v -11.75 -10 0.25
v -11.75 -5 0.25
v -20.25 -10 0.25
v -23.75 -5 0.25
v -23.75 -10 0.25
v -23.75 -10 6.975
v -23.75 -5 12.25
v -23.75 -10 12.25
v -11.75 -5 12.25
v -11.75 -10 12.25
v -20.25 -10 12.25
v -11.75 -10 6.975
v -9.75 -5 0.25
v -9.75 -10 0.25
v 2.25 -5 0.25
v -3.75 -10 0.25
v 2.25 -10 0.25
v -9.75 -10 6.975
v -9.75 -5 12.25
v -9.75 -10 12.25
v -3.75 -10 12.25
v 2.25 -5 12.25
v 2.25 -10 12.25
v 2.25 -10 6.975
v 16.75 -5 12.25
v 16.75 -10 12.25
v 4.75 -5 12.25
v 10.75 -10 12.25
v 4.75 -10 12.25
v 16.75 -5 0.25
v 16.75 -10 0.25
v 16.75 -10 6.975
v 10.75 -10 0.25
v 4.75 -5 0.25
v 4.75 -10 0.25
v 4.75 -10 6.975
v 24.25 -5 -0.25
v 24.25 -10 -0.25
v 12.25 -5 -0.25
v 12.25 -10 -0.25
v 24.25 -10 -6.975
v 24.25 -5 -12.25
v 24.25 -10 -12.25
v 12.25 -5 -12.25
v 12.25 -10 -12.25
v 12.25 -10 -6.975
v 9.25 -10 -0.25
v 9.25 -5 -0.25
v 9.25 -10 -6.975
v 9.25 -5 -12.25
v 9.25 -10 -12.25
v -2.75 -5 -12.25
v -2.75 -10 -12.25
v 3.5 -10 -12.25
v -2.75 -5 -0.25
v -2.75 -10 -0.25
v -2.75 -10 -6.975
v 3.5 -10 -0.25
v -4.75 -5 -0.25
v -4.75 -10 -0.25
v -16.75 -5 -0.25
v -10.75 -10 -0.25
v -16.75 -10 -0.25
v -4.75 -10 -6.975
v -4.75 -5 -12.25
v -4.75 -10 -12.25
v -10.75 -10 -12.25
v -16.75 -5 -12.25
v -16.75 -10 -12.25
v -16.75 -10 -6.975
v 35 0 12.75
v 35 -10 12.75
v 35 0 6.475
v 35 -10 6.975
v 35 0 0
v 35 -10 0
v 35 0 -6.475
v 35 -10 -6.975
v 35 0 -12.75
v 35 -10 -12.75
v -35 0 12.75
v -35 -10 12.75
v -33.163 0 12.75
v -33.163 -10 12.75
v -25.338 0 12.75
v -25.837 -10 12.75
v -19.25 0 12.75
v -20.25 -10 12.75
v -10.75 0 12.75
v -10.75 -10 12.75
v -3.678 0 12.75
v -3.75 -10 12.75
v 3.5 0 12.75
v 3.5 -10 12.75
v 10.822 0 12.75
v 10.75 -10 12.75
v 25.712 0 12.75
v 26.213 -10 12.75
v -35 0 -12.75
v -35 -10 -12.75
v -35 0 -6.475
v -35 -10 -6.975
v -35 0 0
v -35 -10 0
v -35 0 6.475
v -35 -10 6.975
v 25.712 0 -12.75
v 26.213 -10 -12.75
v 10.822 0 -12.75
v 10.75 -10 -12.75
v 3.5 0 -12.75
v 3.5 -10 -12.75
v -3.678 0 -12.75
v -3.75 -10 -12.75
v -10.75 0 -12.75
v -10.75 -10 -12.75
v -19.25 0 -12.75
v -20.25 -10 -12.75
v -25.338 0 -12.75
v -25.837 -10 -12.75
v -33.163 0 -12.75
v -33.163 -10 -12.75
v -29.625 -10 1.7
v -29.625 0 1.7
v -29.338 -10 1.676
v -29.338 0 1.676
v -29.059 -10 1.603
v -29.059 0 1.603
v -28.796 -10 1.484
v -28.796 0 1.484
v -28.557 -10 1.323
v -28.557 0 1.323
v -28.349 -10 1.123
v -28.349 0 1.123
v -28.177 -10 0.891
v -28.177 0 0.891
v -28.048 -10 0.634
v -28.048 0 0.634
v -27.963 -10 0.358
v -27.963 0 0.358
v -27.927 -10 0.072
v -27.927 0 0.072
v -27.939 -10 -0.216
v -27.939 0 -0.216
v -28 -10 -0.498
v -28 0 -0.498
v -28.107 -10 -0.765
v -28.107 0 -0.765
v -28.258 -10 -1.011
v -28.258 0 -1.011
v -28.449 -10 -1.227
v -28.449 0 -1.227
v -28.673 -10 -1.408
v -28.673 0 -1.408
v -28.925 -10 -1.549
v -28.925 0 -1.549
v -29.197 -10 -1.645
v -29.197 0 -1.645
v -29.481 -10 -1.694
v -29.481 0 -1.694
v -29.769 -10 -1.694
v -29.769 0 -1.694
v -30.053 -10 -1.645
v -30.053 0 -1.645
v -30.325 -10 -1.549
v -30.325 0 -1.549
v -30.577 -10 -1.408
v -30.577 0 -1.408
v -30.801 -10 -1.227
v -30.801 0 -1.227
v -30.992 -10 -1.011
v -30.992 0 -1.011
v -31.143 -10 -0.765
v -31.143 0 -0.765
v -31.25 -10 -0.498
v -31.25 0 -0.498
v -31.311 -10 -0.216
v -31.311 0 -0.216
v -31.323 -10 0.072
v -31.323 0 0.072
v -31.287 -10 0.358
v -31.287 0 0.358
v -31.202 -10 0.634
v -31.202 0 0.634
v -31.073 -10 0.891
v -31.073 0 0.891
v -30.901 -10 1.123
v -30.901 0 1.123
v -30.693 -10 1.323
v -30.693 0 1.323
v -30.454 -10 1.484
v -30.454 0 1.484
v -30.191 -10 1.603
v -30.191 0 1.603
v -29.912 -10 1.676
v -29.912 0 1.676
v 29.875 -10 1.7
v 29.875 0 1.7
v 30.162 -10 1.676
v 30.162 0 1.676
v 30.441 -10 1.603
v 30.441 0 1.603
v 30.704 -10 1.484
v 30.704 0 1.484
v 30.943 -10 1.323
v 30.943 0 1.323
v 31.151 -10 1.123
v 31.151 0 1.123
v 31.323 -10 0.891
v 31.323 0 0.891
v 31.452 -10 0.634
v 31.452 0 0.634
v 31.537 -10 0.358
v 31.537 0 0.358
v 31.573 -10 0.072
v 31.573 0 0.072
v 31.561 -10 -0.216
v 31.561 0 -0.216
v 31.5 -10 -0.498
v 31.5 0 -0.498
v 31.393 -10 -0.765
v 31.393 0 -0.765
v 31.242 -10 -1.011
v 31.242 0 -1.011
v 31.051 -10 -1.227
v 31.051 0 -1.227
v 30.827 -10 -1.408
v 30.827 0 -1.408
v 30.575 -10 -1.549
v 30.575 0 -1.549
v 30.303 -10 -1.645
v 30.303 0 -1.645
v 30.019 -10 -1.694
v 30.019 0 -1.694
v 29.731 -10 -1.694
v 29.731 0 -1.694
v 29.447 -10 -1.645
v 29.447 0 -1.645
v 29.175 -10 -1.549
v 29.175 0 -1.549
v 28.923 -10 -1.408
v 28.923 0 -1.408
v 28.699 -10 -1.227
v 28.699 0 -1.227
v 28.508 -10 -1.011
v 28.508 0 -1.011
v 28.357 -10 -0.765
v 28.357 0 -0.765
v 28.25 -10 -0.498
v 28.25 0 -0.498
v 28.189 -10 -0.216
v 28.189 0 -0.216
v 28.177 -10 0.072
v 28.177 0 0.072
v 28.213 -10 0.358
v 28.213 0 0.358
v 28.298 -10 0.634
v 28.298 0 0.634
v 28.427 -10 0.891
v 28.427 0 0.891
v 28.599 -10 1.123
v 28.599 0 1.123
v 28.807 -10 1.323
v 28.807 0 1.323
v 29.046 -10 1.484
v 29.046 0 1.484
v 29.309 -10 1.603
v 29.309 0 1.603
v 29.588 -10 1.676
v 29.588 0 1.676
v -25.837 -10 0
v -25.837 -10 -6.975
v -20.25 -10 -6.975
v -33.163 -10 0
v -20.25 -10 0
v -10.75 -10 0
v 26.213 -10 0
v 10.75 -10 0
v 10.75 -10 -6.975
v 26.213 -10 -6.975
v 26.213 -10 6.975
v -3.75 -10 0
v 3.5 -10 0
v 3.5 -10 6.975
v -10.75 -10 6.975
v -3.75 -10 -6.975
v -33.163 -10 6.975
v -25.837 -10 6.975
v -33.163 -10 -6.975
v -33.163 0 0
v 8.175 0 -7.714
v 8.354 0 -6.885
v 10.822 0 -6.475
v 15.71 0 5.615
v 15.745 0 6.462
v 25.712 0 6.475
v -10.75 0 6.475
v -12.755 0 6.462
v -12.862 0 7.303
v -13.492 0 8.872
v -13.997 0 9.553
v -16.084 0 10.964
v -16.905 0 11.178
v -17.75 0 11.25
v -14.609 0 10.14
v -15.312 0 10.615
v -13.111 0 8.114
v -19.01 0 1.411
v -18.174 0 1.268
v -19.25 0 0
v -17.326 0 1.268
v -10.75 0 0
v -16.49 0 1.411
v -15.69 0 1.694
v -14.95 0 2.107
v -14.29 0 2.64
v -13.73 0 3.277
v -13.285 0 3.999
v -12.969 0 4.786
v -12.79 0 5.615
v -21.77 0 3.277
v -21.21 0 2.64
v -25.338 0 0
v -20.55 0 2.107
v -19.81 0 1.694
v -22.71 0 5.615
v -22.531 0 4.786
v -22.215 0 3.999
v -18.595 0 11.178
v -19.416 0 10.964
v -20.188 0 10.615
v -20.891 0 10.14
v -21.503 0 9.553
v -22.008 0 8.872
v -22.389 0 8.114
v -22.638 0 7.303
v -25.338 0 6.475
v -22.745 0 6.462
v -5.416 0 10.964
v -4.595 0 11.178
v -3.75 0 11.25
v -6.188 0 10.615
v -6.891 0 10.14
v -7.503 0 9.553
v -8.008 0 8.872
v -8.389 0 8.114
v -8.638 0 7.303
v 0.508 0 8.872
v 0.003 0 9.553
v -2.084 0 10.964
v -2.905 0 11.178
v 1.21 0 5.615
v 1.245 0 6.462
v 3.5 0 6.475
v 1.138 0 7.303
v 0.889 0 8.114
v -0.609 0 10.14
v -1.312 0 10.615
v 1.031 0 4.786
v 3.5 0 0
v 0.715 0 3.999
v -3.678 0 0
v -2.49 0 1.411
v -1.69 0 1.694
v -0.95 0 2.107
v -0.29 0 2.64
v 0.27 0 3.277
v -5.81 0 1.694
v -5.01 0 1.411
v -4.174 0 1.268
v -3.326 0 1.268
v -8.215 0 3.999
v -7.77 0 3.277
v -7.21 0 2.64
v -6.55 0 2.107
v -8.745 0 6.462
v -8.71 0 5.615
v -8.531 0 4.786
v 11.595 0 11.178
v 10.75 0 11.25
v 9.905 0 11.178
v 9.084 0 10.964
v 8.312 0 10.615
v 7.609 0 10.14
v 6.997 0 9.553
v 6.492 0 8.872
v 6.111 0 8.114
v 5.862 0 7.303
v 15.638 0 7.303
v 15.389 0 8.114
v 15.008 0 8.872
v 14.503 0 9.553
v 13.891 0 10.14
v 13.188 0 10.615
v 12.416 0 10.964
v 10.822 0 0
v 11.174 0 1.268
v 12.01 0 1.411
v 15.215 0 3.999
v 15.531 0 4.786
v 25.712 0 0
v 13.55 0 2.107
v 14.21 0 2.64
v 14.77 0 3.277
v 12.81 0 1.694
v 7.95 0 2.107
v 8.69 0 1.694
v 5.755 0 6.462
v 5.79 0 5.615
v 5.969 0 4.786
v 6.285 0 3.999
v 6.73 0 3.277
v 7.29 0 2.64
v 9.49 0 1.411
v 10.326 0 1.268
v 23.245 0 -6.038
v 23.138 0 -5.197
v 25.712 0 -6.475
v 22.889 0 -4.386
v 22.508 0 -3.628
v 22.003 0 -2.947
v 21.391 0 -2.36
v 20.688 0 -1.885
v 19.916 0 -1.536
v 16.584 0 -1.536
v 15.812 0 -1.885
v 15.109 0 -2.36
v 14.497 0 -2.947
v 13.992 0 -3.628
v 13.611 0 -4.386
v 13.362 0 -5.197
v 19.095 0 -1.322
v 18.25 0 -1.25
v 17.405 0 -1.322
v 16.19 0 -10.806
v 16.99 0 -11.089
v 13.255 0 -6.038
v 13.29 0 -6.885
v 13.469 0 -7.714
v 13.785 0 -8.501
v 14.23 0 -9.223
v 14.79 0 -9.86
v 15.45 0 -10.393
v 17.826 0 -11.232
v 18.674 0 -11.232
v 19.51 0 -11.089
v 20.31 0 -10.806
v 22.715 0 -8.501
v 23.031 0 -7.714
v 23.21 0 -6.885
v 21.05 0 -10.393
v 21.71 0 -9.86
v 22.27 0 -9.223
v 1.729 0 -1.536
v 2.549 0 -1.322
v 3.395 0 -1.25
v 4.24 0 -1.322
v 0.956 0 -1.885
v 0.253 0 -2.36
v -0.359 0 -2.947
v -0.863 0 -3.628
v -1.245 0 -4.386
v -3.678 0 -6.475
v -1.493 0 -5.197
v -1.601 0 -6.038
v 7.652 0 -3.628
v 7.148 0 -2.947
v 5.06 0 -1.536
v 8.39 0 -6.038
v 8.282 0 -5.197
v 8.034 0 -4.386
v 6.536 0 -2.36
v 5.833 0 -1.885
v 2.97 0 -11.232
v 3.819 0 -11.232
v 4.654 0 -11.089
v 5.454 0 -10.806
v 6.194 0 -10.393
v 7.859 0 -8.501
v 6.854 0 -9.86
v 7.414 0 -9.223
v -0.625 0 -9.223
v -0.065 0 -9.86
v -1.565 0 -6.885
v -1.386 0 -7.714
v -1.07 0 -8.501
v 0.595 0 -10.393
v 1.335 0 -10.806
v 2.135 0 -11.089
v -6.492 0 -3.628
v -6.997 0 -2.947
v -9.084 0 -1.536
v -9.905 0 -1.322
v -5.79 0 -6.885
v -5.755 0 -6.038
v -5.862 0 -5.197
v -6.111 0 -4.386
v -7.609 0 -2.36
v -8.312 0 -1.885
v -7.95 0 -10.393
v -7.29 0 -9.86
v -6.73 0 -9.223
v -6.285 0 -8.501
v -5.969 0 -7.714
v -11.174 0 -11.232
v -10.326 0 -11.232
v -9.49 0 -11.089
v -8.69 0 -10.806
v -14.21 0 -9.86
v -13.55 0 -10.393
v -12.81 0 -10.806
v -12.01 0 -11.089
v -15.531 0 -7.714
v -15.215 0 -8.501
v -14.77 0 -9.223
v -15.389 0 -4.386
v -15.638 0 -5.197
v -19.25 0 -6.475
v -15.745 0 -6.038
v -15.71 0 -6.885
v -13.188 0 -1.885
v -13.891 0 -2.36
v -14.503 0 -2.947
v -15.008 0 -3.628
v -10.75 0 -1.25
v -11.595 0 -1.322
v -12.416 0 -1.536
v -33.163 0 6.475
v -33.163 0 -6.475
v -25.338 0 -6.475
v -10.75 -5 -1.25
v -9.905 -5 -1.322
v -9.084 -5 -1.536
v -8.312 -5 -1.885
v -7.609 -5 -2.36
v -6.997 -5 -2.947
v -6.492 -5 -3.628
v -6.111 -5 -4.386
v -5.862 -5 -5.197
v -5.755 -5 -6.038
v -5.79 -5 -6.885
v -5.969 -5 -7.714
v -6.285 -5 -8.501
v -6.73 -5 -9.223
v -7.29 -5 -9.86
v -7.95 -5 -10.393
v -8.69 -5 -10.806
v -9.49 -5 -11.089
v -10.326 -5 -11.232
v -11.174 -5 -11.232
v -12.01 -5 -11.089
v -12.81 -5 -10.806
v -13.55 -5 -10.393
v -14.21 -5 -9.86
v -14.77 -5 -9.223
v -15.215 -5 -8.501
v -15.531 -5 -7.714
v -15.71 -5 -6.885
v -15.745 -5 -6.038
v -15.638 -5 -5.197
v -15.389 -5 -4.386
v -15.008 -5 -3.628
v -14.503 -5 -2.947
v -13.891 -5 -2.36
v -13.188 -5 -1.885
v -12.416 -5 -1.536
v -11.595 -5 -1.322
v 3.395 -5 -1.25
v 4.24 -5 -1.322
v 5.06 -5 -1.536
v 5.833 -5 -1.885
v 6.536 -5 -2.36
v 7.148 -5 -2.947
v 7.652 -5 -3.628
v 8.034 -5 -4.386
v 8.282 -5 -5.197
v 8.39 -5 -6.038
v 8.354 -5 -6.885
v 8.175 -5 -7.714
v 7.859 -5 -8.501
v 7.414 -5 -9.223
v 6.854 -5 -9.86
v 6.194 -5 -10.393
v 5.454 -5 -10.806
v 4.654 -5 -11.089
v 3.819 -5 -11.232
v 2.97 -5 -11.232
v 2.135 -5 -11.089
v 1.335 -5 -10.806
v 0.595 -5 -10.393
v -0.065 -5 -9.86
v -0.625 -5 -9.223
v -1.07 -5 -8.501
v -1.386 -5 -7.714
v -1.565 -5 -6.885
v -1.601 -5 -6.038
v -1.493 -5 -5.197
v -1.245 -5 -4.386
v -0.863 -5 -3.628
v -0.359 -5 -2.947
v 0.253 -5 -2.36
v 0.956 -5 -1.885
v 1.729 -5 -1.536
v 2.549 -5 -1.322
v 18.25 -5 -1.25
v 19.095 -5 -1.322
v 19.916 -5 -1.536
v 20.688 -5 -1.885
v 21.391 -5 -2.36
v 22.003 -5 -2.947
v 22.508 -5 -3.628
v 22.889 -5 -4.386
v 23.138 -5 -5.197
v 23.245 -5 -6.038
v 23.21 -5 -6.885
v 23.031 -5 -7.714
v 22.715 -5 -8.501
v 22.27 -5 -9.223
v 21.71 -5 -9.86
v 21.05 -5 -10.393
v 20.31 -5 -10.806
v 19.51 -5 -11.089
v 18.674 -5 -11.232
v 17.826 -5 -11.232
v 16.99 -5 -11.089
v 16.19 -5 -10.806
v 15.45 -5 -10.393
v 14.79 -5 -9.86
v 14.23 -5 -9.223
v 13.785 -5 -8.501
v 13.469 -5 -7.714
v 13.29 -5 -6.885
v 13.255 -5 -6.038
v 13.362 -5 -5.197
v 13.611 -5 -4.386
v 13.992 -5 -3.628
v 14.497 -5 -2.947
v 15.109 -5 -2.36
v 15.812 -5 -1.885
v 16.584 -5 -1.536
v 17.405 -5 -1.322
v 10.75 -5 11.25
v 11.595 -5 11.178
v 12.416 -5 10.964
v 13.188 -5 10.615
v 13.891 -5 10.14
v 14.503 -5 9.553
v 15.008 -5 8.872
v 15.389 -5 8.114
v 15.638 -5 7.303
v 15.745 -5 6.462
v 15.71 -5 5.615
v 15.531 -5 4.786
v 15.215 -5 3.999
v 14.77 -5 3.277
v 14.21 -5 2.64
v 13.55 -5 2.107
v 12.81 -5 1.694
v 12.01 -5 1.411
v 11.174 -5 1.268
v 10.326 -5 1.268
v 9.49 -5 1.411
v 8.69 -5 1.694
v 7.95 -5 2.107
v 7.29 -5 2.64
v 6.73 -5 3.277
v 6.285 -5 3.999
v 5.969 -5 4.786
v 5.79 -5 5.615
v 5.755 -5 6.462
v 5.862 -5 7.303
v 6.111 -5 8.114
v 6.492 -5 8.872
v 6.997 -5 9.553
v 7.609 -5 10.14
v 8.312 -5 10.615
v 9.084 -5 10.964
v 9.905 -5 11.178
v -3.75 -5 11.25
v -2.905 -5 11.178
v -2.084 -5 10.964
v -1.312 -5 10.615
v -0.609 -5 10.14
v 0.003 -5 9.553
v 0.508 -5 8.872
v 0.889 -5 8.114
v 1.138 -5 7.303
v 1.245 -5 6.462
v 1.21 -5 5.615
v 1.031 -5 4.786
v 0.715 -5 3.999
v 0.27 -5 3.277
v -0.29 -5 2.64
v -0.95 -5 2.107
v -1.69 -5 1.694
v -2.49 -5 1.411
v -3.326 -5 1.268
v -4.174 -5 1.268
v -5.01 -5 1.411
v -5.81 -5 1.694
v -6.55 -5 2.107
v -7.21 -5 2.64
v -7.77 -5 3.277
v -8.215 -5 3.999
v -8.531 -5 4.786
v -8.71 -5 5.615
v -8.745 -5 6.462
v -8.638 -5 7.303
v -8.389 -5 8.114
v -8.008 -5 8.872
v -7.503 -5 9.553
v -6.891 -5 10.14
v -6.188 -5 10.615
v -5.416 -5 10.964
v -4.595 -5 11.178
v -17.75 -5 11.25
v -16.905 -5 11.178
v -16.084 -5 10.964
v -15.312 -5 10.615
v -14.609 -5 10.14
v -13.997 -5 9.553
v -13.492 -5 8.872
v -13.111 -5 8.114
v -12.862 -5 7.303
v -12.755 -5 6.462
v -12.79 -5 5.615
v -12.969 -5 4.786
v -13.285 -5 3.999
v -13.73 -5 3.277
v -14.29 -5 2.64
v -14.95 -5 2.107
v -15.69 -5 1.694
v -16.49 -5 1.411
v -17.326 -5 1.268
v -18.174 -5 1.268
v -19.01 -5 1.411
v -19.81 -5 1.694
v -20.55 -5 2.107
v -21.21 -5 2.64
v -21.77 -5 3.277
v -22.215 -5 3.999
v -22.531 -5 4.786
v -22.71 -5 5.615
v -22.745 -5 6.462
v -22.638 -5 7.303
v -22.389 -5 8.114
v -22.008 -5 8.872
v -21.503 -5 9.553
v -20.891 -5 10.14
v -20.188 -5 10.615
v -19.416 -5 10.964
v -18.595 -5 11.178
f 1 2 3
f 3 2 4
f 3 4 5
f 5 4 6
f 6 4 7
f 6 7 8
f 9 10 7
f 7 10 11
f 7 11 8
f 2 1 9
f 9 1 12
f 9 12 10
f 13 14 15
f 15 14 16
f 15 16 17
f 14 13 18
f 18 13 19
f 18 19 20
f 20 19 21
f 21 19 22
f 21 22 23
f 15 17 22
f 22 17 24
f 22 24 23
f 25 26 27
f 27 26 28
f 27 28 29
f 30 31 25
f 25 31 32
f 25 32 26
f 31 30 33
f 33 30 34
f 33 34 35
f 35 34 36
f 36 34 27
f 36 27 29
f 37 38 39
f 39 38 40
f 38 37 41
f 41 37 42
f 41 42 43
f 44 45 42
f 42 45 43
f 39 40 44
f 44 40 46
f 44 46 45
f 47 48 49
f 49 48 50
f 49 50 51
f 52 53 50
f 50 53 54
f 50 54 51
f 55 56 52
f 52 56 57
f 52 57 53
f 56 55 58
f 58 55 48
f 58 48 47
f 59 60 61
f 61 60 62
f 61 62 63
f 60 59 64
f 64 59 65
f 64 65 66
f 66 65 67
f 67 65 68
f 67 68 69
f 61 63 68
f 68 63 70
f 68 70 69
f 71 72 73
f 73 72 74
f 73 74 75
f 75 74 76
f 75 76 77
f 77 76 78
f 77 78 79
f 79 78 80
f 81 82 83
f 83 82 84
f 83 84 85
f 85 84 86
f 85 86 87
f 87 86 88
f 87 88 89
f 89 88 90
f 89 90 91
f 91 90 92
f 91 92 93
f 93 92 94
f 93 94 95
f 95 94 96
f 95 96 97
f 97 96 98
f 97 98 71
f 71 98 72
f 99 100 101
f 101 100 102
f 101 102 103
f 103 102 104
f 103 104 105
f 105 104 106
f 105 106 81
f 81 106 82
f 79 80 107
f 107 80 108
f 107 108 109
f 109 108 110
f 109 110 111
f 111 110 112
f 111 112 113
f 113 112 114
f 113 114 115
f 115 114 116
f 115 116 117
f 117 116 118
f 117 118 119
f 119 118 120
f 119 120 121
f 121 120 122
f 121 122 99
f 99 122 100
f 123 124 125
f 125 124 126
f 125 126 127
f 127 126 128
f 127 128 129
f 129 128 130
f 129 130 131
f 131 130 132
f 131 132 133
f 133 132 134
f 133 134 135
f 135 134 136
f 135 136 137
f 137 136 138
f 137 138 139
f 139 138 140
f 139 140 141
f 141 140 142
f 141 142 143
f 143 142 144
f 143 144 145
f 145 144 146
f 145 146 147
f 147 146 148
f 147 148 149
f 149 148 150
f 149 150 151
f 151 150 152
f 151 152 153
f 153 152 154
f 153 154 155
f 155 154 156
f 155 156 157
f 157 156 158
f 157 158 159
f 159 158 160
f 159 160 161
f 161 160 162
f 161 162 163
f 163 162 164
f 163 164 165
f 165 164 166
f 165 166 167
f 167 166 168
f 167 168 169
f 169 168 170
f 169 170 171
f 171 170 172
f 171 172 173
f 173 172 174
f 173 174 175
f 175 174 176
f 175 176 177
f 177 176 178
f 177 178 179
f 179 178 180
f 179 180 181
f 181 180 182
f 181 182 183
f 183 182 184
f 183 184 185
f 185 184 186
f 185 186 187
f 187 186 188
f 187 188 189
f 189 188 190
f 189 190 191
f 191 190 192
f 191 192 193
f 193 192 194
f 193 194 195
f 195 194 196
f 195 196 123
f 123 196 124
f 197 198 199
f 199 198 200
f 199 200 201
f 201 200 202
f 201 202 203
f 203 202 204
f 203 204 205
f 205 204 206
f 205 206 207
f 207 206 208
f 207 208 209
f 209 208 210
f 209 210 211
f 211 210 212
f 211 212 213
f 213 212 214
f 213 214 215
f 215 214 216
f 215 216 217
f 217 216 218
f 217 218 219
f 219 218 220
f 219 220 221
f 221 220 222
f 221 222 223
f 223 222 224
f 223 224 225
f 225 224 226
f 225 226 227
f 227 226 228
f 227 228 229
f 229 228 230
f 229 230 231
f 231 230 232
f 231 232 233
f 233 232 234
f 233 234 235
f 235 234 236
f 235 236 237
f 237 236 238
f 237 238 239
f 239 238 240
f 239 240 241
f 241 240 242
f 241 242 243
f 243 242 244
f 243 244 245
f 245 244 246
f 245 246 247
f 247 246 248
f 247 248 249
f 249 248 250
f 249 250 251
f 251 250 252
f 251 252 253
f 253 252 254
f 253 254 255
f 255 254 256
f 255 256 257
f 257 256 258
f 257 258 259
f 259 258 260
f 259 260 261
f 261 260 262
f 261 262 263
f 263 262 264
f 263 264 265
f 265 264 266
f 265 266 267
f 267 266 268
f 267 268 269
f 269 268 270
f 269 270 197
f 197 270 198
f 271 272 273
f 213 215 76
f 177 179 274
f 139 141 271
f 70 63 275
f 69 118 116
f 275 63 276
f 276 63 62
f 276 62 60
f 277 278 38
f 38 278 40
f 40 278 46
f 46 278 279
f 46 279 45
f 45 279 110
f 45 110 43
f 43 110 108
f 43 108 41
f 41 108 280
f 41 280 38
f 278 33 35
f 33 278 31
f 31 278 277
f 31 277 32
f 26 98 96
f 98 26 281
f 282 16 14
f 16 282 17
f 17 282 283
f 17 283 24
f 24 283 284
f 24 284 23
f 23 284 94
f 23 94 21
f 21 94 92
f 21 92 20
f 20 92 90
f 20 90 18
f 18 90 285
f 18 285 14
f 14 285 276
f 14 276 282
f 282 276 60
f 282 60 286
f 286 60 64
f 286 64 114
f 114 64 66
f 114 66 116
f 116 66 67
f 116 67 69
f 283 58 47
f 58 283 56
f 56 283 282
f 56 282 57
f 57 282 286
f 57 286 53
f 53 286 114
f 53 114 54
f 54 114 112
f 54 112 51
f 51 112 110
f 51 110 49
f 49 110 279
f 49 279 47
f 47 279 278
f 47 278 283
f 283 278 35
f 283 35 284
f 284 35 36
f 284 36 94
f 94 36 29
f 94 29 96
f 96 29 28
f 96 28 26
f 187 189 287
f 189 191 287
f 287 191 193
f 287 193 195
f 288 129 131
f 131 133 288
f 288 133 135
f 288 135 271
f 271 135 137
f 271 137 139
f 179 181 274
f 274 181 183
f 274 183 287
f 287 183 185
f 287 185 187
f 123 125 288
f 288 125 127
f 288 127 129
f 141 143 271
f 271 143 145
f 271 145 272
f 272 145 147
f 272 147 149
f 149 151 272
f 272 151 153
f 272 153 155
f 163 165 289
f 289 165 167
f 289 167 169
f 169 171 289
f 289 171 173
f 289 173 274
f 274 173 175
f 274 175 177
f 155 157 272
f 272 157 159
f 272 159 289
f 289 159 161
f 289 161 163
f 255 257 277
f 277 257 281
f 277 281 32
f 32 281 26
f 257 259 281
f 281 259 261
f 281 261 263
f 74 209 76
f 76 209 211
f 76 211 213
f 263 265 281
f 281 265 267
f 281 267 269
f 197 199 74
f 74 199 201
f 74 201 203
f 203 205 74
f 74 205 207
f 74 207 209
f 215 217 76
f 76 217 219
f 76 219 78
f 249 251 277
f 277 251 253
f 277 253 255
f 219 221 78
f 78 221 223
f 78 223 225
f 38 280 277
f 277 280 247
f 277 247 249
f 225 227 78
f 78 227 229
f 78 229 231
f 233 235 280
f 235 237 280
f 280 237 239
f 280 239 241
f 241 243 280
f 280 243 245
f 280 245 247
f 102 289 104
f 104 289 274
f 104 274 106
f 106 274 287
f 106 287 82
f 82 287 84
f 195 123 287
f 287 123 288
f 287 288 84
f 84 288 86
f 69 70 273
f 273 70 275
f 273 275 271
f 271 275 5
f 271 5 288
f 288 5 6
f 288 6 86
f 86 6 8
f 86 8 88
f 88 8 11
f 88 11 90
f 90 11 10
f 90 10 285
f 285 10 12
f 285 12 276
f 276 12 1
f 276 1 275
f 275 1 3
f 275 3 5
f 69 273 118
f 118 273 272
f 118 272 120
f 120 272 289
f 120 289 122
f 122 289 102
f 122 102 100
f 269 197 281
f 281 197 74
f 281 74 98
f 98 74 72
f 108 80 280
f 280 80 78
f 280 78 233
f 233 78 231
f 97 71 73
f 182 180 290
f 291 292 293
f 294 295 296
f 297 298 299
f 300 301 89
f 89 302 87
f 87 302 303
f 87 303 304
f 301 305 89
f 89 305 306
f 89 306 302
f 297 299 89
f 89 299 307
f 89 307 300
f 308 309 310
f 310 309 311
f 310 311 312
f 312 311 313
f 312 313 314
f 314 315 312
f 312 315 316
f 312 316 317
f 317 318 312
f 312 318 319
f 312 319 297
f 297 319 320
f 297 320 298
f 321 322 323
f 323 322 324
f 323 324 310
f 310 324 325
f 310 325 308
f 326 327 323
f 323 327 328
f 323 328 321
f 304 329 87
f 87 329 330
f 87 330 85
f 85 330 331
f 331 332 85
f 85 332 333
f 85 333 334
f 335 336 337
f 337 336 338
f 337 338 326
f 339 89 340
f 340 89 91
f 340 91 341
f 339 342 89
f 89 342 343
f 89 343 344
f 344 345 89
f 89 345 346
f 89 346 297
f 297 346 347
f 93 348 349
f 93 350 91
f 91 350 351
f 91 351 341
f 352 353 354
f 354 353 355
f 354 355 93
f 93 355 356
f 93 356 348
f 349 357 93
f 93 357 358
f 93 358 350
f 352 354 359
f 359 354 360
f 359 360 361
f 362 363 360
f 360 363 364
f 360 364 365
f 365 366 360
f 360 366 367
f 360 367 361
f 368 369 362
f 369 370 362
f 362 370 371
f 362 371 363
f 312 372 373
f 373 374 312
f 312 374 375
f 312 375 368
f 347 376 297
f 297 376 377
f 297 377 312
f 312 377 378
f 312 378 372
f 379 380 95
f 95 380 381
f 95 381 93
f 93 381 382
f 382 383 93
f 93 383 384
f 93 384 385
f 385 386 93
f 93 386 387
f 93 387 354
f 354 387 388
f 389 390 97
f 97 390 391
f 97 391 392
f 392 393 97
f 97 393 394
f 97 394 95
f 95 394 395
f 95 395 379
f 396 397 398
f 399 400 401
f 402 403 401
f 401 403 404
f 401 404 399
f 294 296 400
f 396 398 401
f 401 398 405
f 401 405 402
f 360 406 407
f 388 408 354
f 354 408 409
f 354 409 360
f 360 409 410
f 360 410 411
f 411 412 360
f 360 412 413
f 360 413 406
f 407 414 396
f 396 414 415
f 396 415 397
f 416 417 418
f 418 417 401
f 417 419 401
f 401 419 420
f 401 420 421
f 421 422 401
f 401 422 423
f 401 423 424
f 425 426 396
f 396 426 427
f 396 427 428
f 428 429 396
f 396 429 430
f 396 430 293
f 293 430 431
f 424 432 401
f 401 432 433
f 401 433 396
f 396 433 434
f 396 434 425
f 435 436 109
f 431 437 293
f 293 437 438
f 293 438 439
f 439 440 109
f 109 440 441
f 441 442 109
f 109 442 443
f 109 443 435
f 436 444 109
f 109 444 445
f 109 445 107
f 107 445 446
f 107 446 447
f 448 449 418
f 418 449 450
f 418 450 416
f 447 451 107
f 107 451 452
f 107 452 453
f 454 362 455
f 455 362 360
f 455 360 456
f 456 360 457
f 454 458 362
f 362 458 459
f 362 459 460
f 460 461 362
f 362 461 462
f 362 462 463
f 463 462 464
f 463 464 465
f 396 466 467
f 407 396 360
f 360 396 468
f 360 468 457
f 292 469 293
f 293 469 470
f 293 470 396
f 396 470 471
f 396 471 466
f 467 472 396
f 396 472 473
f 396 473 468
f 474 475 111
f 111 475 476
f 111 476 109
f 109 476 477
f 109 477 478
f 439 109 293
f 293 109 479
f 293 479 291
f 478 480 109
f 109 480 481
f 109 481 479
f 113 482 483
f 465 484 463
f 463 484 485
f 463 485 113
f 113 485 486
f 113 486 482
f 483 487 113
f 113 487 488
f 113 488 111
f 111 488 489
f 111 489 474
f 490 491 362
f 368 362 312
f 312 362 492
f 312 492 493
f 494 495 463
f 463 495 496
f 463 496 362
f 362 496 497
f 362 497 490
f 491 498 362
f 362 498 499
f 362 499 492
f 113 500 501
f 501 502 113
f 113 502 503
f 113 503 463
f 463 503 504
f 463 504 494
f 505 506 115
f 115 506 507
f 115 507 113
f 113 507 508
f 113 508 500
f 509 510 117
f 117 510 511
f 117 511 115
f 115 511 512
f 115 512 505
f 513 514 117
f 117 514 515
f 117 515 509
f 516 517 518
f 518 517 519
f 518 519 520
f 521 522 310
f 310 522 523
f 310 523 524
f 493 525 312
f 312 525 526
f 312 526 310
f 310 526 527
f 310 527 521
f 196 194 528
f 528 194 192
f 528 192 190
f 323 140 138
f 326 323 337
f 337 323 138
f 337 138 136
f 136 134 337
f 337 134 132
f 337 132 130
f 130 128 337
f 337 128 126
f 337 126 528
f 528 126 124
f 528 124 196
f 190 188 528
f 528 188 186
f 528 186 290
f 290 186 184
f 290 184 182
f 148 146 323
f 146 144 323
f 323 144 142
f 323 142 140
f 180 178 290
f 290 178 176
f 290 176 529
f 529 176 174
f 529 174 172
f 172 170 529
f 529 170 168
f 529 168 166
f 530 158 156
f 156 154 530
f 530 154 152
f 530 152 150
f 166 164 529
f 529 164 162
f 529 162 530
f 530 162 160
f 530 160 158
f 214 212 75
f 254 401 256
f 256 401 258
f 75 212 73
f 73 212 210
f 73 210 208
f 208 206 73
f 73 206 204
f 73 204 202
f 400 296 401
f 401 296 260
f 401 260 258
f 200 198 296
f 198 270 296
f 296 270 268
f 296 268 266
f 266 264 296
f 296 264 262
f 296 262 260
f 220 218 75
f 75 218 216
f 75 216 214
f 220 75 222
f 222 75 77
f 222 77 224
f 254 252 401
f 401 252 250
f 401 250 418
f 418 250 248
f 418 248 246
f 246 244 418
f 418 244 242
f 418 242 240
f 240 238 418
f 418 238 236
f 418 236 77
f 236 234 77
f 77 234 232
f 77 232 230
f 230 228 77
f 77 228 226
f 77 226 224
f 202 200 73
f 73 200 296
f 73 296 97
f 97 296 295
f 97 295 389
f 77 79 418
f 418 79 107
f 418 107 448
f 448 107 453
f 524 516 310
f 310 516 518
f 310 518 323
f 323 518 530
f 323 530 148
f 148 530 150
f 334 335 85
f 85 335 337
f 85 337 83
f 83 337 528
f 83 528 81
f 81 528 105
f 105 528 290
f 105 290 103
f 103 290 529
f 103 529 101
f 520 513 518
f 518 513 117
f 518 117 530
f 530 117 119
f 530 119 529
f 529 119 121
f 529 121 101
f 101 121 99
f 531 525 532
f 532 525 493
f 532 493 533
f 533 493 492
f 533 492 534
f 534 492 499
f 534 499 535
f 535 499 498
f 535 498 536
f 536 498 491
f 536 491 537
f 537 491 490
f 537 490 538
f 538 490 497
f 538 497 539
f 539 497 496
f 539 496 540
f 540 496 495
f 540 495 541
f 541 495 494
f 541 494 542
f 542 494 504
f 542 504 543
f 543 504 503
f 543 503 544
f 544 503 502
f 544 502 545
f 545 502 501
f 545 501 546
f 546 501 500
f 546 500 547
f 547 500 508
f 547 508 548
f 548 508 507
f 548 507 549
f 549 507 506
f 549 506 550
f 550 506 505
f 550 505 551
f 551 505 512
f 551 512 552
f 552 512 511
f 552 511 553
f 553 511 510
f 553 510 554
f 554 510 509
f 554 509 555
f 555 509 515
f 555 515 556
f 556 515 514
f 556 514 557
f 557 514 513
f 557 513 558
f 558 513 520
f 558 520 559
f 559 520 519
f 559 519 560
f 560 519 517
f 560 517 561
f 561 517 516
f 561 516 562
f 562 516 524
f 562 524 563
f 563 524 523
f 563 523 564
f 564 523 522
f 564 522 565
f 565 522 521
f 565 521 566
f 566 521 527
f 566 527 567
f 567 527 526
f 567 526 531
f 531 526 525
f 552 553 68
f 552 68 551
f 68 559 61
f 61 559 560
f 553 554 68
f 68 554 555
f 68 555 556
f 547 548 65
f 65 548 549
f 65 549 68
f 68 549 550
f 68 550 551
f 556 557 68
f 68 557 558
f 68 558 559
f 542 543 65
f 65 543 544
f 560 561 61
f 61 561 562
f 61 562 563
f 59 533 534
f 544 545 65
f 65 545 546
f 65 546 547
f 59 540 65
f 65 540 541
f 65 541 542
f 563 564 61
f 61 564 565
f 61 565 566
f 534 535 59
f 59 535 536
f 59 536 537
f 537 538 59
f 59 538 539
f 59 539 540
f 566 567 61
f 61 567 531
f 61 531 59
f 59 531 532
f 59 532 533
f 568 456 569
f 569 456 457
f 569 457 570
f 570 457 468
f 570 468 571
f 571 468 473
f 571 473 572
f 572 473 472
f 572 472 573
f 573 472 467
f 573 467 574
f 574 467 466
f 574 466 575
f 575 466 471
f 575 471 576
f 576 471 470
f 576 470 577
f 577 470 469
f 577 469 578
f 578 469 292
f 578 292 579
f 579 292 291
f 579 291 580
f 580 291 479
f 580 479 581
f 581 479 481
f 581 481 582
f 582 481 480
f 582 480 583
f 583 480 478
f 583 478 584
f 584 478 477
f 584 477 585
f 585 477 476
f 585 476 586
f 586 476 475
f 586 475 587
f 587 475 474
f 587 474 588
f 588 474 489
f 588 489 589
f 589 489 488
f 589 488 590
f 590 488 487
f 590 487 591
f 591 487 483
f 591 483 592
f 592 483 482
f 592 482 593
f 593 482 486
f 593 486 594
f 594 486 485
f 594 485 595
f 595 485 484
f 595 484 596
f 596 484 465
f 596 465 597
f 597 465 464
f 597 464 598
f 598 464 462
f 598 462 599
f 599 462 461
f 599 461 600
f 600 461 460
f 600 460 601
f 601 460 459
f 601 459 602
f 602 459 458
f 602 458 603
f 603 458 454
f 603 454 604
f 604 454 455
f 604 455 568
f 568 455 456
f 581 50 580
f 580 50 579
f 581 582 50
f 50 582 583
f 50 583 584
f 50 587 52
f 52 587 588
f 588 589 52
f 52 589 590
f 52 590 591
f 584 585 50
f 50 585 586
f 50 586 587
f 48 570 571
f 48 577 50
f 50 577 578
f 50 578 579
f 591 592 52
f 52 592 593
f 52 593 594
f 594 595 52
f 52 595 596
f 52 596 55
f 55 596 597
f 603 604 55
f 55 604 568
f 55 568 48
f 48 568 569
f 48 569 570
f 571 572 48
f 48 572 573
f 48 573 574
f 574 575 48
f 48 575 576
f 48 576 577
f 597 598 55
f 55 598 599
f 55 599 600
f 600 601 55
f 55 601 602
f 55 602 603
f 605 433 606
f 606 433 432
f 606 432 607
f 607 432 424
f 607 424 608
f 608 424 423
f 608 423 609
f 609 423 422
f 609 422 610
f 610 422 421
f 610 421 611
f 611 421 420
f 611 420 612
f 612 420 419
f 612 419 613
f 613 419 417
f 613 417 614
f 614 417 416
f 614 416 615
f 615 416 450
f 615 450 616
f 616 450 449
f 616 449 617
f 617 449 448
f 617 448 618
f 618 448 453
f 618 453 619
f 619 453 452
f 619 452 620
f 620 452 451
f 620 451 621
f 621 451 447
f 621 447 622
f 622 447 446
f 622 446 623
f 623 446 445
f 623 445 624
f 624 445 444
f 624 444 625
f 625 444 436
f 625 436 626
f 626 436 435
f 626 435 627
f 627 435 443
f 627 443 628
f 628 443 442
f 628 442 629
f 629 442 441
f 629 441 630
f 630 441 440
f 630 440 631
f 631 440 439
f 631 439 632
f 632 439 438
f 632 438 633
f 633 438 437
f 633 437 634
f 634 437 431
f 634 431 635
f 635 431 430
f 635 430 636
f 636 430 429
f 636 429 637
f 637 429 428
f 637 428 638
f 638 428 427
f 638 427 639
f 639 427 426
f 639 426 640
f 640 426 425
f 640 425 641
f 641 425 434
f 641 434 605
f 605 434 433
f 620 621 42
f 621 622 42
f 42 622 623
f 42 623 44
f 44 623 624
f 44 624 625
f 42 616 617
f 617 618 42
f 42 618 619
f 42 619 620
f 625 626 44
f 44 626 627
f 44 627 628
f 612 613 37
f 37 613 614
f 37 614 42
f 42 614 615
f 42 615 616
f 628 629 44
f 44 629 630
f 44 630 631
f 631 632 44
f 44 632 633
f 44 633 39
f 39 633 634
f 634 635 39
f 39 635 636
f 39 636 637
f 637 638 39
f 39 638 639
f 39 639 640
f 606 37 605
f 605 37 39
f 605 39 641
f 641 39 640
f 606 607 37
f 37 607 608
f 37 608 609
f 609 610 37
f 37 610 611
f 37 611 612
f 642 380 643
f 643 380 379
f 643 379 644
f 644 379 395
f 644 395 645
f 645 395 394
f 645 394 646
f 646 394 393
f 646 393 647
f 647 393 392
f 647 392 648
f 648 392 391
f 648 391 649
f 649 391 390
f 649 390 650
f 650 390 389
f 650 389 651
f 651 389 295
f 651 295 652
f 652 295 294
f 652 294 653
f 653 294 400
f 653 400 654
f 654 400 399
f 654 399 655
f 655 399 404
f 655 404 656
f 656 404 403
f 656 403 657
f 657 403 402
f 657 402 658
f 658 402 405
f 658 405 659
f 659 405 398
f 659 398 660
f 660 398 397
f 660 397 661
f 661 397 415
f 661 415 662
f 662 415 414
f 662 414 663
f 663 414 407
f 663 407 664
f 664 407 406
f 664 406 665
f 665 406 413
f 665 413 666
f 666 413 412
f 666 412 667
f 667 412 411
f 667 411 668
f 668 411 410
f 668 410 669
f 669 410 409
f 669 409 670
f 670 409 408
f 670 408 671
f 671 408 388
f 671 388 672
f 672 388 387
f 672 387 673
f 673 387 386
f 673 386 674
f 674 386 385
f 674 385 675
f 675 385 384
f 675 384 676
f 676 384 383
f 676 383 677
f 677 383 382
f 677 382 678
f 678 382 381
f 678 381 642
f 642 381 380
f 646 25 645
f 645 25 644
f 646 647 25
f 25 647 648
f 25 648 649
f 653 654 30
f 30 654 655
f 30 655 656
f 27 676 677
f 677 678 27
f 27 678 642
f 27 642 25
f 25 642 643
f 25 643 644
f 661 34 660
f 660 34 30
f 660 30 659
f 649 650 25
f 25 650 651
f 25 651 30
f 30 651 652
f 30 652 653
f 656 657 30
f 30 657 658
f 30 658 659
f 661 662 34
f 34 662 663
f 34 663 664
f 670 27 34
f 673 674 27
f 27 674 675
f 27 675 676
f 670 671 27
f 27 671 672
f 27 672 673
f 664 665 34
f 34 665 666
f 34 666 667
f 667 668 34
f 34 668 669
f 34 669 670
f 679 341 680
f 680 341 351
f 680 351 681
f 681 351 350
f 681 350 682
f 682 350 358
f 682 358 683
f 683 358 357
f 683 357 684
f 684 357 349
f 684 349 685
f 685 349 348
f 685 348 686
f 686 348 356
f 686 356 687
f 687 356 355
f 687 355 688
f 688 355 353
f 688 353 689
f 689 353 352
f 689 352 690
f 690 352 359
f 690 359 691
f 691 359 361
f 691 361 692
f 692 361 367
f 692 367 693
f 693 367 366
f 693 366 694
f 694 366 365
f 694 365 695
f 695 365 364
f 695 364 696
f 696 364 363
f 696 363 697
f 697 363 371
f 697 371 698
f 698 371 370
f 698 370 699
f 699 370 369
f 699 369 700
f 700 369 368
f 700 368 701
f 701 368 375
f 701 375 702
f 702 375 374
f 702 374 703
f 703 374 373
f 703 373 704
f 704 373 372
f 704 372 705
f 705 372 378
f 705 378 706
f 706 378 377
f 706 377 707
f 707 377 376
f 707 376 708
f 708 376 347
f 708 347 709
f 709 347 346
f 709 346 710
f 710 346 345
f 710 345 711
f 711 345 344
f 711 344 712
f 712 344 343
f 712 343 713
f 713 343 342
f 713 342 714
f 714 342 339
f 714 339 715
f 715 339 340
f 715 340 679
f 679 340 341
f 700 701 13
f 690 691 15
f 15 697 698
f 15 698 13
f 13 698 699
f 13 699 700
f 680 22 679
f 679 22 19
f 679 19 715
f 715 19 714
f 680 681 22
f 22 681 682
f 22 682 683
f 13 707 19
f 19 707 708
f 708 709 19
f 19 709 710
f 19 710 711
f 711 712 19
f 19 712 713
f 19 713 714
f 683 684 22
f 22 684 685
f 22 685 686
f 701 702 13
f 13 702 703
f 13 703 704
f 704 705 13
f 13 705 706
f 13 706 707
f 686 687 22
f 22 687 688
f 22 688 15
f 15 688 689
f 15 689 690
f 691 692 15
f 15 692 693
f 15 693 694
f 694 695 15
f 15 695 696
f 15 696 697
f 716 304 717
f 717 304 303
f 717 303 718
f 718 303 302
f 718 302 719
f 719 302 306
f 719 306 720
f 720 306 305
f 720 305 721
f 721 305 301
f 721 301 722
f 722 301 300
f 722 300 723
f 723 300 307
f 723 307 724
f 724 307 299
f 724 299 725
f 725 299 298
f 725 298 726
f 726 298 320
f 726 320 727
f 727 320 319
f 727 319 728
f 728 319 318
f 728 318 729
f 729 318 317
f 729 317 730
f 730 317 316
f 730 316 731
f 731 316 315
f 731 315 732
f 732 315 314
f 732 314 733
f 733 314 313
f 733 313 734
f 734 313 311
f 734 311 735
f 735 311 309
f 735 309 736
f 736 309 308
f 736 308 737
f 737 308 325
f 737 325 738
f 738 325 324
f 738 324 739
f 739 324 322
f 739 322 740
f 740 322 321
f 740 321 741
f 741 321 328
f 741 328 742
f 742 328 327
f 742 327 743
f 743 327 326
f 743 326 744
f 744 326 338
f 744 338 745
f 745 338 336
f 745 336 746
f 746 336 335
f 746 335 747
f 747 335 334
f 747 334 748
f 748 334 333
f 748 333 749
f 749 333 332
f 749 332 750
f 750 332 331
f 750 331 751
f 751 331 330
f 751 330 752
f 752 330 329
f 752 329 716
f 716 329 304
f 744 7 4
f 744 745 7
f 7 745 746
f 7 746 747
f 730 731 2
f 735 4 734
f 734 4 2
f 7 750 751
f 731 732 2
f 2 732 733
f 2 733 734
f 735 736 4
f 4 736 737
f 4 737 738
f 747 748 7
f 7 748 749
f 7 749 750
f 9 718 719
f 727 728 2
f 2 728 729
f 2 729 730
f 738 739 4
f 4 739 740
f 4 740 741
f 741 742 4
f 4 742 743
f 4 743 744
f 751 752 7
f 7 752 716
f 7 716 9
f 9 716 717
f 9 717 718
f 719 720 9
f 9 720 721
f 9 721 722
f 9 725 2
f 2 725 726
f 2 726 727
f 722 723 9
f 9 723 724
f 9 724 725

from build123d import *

# Parameters (mm, degrees)
SKETCH1_W           = 70
SKETCH1_H           = 25.5
SKETCH1_W_2         = 12
SKETCH1_H_2         = 12
SKETCH1_R           = 1.7
BOSS_EXTRUDE1_DEPTH = 10
SKETCH1_3_W         = 12
SKETCH1_3_H         = 12
SKETCH1_3_R         = 5
BOSS_EXTRUDE2_DEPTH = 5


with BuildPart() as part:
    # Sketch1 → Boss-Extrude1 (new body)
    with BuildSketch(Plane(origin=(0, 0, 0), x_dir=(1, 0, 0), z_dir=(0, 1, 0))):
        Rectangle(SKETCH1_W, SKETCH1_H)
        with Locations((-17.75, -6.25)):
            Rectangle(SKETCH1_W_2, SKETCH1_H_2, mode=Mode.SUBTRACT)
        with Locations((-29.625, 0)):
            Circle(SKETCH1_R, mode=Mode.SUBTRACT)
        with Locations((-3.75, -6.25)):
            Rectangle(SKETCH1_W_2, SKETCH1_H_2, mode=Mode.SUBTRACT)
        with Locations((10.75, -6.25)):
            Rectangle(SKETCH1_W_2, SKETCH1_H_2, mode=Mode.SUBTRACT)
        with Locations((29.875, 0)):
            Circle(SKETCH1_R, mode=Mode.SUBTRACT)
        with Locations((-10.75, 6.25)):
            Rectangle(SKETCH1_W_2, SKETCH1_H_2, mode=Mode.SUBTRACT)
        with Locations((3.25, 6.25)):
            Rectangle(SKETCH1_W_2, SKETCH1_H_2, mode=Mode.SUBTRACT)
        with Locations((18.25, 6.25)):
            Rectangle(SKETCH1_W_2, SKETCH1_H_2, mode=Mode.SUBTRACT)
    extrude(amount=-BOSS_EXTRUDE1_DEPTH)

    # Sketch1<3> → Boss-Extrude2 (add)
    # profile 1 of 6: a face of its own
    with BuildSketch(Plane(origin=(0, 0, 0), x_dir=(1, 0, 0), z_dir=(0, 1, 0))):
        with Locations((-17.75, -6.25)):
            Rectangle(SKETCH1_3_W, SKETCH1_3_H)
        with Locations((-17.75, -6.25)):
            Circle(SKETCH1_3_R, mode=Mode.SUBTRACT)
    # profile 2 of 6: a face of its own
    with BuildSketch(Plane(origin=(0, 0, 0), x_dir=(1, 0, 0), z_dir=(0, 1, 0))):
        with Locations((-3.75, -6.25)):
            Rectangle(SKETCH1_3_W, SKETCH1_3_H)
        with Locations((-3.75, -6.25)):
            Circle(SKETCH1_3_R, mode=Mode.SUBTRACT)
    # profile 3 of 6: a face of its own
    with BuildSketch(Plane(origin=(0, 0, 0), x_dir=(1, 0, 0), z_dir=(0, 1, 0))):
        with Locations((10.75, -6.25)):
            Rectangle(SKETCH1_3_W, SKETCH1_3_H)
        with Locations((10.75, -6.25)):
            Circle(SKETCH1_3_R, mode=Mode.SUBTRACT)
    # profile 4 of 6: a face of its own
    with BuildSketch(Plane(origin=(0, 0, 0), x_dir=(1, 0, 0), z_dir=(0, 1, 0))):
        with Locations((18.25, 6.25)):
            Rectangle(SKETCH1_3_W, SKETCH1_3_H)
        with Locations((18.25, 6.25)):
            Circle(SKETCH1_3_R, mode=Mode.SUBTRACT)
    # profile 5 of 6: a face of its own
    with BuildSketch(Plane(origin=(0, 0, 0), x_dir=(1, 0, 0), z_dir=(0, 1, 0))):
        with Locations((3.25, 6.25)):
            Rectangle(SKETCH1_3_W, SKETCH1_3_H)
        with Locations((3.394505145, 6.25)):
            Circle(SKETCH1_3_R, mode=Mode.SUBTRACT)
    # profile 6 of 6: a face of its own
    with BuildSketch(Plane(origin=(0, 0, 0), x_dir=(1, 0, 0), z_dir=(0, 1, 0))):
        with Locations((-10.75, 6.25)):
            Rectangle(SKETCH1_3_W, SKETCH1_3_H)
        with Locations((-10.75, 6.25)):
            Circle(SKETCH1_3_R, mode=Mode.SUBTRACT)
    extrude(amount=-BOSS_EXTRUDE2_DEPTH)


solid = part.part
